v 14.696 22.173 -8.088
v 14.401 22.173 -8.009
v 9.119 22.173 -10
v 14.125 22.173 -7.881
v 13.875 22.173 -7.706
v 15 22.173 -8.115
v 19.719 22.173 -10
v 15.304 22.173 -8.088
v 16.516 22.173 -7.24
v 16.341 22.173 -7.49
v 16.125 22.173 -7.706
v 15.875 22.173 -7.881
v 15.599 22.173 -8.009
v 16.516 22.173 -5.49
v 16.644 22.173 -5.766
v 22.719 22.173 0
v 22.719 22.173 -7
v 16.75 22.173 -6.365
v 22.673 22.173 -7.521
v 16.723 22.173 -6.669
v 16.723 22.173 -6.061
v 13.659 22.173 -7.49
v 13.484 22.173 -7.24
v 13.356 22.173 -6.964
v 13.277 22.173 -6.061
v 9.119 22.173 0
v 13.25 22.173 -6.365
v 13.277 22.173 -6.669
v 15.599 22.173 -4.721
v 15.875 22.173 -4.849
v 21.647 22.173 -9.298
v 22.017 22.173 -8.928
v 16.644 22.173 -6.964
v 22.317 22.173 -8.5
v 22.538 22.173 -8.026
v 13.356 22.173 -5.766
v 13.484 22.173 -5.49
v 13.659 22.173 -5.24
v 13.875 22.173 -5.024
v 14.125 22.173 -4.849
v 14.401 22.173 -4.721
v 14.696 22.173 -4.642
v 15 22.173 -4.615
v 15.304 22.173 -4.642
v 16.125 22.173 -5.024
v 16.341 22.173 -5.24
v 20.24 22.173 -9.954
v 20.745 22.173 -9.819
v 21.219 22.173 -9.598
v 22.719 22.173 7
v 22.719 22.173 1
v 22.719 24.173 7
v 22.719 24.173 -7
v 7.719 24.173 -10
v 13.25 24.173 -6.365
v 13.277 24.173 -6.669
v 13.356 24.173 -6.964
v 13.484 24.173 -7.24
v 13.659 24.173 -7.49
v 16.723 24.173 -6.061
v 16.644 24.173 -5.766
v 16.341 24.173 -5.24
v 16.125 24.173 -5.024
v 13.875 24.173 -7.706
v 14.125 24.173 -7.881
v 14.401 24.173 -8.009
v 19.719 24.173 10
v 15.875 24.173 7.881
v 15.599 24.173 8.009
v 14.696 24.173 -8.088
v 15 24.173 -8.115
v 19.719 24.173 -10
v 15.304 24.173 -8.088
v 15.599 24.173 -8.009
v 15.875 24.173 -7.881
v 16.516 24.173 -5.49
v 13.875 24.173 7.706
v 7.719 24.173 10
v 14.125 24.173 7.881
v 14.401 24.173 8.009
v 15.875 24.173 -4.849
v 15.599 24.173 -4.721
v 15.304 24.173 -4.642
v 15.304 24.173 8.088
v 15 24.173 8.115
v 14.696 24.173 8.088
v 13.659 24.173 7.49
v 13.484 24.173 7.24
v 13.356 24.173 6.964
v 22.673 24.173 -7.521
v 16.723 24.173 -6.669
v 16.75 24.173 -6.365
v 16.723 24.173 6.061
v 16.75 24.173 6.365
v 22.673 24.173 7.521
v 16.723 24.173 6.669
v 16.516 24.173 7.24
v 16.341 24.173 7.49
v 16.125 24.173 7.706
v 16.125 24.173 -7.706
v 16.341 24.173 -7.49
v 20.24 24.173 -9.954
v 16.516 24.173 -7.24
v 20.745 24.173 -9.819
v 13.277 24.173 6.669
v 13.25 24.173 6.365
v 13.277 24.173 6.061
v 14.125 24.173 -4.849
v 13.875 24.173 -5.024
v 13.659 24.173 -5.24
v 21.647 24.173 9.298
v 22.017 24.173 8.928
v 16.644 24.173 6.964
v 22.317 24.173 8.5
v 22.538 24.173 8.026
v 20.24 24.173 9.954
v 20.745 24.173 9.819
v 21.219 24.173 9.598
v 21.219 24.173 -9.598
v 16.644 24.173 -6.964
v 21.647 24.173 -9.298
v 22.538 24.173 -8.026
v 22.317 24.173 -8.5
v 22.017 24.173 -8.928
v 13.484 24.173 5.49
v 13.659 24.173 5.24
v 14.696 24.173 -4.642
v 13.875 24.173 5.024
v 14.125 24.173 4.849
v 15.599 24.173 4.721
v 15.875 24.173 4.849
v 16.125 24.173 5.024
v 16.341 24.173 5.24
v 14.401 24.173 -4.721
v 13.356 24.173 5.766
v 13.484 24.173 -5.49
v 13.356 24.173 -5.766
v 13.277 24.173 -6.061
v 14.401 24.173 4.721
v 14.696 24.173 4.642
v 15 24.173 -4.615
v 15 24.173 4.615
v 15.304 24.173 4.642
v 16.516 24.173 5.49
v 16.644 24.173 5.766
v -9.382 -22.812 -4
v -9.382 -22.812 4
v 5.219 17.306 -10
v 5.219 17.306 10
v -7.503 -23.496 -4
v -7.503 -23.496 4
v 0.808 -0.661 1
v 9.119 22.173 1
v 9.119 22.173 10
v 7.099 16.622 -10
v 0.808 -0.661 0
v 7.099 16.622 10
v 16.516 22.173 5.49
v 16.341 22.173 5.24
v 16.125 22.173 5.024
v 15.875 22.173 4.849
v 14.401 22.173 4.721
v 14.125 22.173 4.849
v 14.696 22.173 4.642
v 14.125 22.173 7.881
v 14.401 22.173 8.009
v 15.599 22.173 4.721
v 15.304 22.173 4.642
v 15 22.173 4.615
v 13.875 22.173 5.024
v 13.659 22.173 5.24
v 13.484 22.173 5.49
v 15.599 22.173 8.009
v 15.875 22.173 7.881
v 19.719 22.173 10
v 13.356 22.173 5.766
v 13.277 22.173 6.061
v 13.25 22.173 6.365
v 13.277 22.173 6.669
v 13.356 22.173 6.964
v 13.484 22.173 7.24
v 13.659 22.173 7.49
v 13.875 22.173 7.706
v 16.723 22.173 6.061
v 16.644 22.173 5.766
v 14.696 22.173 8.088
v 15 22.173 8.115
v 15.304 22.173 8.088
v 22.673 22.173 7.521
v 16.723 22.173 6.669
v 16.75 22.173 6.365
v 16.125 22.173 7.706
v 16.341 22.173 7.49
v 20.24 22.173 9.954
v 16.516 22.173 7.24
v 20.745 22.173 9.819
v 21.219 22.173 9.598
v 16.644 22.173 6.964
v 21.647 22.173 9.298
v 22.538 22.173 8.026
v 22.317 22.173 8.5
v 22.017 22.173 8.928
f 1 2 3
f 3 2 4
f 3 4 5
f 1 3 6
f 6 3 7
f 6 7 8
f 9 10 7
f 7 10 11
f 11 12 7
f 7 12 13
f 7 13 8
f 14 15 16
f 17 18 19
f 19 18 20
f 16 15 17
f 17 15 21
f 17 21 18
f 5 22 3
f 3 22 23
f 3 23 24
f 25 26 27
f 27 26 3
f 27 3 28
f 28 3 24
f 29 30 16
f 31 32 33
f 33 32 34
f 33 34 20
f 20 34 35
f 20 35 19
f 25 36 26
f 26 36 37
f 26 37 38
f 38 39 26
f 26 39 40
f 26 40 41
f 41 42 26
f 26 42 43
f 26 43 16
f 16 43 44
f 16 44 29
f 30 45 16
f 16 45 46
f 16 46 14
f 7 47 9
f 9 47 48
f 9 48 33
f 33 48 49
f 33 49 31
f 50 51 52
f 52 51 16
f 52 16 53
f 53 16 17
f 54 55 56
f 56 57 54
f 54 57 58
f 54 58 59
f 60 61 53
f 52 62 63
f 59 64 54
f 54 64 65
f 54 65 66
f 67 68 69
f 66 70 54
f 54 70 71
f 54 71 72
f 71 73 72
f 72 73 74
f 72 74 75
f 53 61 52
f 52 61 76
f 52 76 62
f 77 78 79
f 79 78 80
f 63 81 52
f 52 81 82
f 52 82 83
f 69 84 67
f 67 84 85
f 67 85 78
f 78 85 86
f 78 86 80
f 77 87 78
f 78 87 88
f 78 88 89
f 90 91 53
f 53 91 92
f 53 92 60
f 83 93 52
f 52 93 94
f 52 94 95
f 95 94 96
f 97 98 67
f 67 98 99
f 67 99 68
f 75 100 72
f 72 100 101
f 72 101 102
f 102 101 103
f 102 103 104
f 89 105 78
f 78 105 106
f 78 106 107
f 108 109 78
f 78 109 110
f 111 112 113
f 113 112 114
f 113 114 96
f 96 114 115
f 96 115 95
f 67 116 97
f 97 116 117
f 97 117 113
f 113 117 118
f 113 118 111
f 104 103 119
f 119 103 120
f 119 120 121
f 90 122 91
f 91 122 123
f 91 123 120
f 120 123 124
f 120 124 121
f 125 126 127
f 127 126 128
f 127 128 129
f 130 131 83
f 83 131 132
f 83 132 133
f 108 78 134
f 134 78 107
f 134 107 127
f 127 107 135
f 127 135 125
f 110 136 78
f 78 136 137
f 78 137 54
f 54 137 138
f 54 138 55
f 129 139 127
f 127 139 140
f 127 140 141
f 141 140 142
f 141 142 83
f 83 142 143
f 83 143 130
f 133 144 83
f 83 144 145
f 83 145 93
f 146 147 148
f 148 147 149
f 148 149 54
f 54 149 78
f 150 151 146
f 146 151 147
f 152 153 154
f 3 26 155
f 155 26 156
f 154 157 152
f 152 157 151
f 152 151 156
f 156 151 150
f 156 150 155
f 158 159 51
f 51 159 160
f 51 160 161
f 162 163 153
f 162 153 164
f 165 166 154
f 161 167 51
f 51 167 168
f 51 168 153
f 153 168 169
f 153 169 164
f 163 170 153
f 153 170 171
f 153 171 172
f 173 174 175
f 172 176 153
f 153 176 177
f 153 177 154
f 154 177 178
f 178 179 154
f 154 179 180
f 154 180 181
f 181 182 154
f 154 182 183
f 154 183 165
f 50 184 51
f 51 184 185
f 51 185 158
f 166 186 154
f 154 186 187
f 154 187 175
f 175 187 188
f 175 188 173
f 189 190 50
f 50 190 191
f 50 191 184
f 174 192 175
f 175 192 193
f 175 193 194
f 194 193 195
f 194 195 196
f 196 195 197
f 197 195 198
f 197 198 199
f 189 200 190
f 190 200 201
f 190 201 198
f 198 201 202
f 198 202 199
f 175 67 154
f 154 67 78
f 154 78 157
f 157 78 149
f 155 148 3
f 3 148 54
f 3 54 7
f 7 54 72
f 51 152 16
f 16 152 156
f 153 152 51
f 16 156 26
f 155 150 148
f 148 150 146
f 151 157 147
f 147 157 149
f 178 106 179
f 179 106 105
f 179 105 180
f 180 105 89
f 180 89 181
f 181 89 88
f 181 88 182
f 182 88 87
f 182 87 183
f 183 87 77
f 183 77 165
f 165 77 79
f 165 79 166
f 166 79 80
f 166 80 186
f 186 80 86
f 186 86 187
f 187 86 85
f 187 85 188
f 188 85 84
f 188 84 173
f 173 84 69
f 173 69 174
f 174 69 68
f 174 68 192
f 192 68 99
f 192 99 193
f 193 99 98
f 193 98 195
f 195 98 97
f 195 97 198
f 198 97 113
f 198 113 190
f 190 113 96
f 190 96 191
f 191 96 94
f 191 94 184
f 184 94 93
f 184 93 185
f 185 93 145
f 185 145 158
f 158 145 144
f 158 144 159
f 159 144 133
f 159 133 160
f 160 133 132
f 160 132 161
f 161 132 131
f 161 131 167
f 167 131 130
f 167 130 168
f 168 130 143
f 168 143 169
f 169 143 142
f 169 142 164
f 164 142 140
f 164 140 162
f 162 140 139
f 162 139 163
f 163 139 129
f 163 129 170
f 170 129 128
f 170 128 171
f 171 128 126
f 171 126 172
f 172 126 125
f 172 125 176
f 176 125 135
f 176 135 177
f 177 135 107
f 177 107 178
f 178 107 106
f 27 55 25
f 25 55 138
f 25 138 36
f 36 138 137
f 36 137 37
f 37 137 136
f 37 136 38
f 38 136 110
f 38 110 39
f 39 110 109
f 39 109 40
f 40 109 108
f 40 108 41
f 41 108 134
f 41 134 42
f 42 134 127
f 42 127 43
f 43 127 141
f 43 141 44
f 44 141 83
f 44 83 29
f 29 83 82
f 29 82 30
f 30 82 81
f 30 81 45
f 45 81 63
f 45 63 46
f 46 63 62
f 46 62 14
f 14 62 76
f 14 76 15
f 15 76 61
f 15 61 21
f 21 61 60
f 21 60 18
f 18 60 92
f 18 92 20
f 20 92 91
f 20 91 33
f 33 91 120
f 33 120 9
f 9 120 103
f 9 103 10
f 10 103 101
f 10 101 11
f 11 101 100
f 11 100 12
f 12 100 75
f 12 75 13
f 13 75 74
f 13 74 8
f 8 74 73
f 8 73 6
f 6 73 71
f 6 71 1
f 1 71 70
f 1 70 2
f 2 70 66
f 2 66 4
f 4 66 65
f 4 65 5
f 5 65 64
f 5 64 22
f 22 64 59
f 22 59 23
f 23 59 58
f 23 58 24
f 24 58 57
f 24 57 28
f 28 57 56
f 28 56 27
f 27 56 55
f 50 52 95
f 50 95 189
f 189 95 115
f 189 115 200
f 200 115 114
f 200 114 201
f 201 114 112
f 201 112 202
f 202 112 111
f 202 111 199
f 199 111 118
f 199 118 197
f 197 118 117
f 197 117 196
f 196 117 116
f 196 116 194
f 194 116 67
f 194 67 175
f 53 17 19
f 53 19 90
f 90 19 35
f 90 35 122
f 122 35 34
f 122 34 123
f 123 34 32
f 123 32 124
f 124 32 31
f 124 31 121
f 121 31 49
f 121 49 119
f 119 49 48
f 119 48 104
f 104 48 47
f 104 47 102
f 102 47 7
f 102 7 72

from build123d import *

# Parameters (mm, degrees)
BOSS_EXTRUDE1_DEPTH = 10
BOSS_EXTRUDE2_DEPTH = 1
CHAMFER1_SIZE       = 6
CHAMFER1_SIZE2      = 42.692218334
SKETCH3_R           = 1.75
CUT_EXTRUDE1_DEPTH  = 48.668671326
FILLET1_R           = 3


with BuildPart() as part:
    # Sketch1 → Boss-Extrude1 (new body, symmetric)
    with BuildSketch(Plane.XY):
        Polygon((-7.502714215, -23.495815343), (-9.382099457, -22.811775057), (7.71890771, 24.172855983), (22.71890771, 24.172855983), (22.71890771, 22.172855983), (9.119322786, 22.172855983), align=None)
    extrude(amount=BOSS_EXTRUDE1_DEPTH, both=True)

    # Sketch2 → Boss-Extrude2 (add)
    with BuildSketch(Plane.XY):
        Polygon((22.71890771, 22.172855983), (0.808304286, -0.66147968), (9.119322786, 22.172855983), align=None)
    extrude(amount=BOSS_EXTRUDE2_DEPTH)

    # Chamfer1
    chamfer1_edges = [part.edges().sort_by_distance(p)[0] for p in [
        (-8.442406836, -23.1537952, 10),
        (-8.442406836, -23.1537952, -10),
    ]]
    chamfer1_side = [part.faces().sort_by_distance(p)[0] for p in [
        (-8.442406836, -23.1537952, 0),
    ]]
    chamfer(chamfer1_edges, length=CHAMFER1_SIZE, length2=CHAMFER1_SIZE2, reference=chamfer1_side[0])

    # Sketch3 → Cut-Extrude1 (cut, through all)
    with BuildSketch(Plane(origin=(0, 24.172855983, 0), x_dir=(1, 0, 0), z_dir=(0, 1, 0))):
        with Locations((15, 6.365)):
            Circle(SKETCH3_R)
        with Locations((15, -6.365)):
            Circle(SKETCH3_R)
    extrude(amount=-CUT_EXTRUDE1_DEPTH, mode=Mode.SUBTRACT)

    # Fillet1
    fillet1_edges = [part.edges().sort_by_distance(p)[0] for p in [
        (22.71890771, 23.172855983, 10),
        (22.71890771, 23.172855983, -10),
    ]]
    fillet(fillet1_edges, radius=FILLET1_R)


solid = part.part
